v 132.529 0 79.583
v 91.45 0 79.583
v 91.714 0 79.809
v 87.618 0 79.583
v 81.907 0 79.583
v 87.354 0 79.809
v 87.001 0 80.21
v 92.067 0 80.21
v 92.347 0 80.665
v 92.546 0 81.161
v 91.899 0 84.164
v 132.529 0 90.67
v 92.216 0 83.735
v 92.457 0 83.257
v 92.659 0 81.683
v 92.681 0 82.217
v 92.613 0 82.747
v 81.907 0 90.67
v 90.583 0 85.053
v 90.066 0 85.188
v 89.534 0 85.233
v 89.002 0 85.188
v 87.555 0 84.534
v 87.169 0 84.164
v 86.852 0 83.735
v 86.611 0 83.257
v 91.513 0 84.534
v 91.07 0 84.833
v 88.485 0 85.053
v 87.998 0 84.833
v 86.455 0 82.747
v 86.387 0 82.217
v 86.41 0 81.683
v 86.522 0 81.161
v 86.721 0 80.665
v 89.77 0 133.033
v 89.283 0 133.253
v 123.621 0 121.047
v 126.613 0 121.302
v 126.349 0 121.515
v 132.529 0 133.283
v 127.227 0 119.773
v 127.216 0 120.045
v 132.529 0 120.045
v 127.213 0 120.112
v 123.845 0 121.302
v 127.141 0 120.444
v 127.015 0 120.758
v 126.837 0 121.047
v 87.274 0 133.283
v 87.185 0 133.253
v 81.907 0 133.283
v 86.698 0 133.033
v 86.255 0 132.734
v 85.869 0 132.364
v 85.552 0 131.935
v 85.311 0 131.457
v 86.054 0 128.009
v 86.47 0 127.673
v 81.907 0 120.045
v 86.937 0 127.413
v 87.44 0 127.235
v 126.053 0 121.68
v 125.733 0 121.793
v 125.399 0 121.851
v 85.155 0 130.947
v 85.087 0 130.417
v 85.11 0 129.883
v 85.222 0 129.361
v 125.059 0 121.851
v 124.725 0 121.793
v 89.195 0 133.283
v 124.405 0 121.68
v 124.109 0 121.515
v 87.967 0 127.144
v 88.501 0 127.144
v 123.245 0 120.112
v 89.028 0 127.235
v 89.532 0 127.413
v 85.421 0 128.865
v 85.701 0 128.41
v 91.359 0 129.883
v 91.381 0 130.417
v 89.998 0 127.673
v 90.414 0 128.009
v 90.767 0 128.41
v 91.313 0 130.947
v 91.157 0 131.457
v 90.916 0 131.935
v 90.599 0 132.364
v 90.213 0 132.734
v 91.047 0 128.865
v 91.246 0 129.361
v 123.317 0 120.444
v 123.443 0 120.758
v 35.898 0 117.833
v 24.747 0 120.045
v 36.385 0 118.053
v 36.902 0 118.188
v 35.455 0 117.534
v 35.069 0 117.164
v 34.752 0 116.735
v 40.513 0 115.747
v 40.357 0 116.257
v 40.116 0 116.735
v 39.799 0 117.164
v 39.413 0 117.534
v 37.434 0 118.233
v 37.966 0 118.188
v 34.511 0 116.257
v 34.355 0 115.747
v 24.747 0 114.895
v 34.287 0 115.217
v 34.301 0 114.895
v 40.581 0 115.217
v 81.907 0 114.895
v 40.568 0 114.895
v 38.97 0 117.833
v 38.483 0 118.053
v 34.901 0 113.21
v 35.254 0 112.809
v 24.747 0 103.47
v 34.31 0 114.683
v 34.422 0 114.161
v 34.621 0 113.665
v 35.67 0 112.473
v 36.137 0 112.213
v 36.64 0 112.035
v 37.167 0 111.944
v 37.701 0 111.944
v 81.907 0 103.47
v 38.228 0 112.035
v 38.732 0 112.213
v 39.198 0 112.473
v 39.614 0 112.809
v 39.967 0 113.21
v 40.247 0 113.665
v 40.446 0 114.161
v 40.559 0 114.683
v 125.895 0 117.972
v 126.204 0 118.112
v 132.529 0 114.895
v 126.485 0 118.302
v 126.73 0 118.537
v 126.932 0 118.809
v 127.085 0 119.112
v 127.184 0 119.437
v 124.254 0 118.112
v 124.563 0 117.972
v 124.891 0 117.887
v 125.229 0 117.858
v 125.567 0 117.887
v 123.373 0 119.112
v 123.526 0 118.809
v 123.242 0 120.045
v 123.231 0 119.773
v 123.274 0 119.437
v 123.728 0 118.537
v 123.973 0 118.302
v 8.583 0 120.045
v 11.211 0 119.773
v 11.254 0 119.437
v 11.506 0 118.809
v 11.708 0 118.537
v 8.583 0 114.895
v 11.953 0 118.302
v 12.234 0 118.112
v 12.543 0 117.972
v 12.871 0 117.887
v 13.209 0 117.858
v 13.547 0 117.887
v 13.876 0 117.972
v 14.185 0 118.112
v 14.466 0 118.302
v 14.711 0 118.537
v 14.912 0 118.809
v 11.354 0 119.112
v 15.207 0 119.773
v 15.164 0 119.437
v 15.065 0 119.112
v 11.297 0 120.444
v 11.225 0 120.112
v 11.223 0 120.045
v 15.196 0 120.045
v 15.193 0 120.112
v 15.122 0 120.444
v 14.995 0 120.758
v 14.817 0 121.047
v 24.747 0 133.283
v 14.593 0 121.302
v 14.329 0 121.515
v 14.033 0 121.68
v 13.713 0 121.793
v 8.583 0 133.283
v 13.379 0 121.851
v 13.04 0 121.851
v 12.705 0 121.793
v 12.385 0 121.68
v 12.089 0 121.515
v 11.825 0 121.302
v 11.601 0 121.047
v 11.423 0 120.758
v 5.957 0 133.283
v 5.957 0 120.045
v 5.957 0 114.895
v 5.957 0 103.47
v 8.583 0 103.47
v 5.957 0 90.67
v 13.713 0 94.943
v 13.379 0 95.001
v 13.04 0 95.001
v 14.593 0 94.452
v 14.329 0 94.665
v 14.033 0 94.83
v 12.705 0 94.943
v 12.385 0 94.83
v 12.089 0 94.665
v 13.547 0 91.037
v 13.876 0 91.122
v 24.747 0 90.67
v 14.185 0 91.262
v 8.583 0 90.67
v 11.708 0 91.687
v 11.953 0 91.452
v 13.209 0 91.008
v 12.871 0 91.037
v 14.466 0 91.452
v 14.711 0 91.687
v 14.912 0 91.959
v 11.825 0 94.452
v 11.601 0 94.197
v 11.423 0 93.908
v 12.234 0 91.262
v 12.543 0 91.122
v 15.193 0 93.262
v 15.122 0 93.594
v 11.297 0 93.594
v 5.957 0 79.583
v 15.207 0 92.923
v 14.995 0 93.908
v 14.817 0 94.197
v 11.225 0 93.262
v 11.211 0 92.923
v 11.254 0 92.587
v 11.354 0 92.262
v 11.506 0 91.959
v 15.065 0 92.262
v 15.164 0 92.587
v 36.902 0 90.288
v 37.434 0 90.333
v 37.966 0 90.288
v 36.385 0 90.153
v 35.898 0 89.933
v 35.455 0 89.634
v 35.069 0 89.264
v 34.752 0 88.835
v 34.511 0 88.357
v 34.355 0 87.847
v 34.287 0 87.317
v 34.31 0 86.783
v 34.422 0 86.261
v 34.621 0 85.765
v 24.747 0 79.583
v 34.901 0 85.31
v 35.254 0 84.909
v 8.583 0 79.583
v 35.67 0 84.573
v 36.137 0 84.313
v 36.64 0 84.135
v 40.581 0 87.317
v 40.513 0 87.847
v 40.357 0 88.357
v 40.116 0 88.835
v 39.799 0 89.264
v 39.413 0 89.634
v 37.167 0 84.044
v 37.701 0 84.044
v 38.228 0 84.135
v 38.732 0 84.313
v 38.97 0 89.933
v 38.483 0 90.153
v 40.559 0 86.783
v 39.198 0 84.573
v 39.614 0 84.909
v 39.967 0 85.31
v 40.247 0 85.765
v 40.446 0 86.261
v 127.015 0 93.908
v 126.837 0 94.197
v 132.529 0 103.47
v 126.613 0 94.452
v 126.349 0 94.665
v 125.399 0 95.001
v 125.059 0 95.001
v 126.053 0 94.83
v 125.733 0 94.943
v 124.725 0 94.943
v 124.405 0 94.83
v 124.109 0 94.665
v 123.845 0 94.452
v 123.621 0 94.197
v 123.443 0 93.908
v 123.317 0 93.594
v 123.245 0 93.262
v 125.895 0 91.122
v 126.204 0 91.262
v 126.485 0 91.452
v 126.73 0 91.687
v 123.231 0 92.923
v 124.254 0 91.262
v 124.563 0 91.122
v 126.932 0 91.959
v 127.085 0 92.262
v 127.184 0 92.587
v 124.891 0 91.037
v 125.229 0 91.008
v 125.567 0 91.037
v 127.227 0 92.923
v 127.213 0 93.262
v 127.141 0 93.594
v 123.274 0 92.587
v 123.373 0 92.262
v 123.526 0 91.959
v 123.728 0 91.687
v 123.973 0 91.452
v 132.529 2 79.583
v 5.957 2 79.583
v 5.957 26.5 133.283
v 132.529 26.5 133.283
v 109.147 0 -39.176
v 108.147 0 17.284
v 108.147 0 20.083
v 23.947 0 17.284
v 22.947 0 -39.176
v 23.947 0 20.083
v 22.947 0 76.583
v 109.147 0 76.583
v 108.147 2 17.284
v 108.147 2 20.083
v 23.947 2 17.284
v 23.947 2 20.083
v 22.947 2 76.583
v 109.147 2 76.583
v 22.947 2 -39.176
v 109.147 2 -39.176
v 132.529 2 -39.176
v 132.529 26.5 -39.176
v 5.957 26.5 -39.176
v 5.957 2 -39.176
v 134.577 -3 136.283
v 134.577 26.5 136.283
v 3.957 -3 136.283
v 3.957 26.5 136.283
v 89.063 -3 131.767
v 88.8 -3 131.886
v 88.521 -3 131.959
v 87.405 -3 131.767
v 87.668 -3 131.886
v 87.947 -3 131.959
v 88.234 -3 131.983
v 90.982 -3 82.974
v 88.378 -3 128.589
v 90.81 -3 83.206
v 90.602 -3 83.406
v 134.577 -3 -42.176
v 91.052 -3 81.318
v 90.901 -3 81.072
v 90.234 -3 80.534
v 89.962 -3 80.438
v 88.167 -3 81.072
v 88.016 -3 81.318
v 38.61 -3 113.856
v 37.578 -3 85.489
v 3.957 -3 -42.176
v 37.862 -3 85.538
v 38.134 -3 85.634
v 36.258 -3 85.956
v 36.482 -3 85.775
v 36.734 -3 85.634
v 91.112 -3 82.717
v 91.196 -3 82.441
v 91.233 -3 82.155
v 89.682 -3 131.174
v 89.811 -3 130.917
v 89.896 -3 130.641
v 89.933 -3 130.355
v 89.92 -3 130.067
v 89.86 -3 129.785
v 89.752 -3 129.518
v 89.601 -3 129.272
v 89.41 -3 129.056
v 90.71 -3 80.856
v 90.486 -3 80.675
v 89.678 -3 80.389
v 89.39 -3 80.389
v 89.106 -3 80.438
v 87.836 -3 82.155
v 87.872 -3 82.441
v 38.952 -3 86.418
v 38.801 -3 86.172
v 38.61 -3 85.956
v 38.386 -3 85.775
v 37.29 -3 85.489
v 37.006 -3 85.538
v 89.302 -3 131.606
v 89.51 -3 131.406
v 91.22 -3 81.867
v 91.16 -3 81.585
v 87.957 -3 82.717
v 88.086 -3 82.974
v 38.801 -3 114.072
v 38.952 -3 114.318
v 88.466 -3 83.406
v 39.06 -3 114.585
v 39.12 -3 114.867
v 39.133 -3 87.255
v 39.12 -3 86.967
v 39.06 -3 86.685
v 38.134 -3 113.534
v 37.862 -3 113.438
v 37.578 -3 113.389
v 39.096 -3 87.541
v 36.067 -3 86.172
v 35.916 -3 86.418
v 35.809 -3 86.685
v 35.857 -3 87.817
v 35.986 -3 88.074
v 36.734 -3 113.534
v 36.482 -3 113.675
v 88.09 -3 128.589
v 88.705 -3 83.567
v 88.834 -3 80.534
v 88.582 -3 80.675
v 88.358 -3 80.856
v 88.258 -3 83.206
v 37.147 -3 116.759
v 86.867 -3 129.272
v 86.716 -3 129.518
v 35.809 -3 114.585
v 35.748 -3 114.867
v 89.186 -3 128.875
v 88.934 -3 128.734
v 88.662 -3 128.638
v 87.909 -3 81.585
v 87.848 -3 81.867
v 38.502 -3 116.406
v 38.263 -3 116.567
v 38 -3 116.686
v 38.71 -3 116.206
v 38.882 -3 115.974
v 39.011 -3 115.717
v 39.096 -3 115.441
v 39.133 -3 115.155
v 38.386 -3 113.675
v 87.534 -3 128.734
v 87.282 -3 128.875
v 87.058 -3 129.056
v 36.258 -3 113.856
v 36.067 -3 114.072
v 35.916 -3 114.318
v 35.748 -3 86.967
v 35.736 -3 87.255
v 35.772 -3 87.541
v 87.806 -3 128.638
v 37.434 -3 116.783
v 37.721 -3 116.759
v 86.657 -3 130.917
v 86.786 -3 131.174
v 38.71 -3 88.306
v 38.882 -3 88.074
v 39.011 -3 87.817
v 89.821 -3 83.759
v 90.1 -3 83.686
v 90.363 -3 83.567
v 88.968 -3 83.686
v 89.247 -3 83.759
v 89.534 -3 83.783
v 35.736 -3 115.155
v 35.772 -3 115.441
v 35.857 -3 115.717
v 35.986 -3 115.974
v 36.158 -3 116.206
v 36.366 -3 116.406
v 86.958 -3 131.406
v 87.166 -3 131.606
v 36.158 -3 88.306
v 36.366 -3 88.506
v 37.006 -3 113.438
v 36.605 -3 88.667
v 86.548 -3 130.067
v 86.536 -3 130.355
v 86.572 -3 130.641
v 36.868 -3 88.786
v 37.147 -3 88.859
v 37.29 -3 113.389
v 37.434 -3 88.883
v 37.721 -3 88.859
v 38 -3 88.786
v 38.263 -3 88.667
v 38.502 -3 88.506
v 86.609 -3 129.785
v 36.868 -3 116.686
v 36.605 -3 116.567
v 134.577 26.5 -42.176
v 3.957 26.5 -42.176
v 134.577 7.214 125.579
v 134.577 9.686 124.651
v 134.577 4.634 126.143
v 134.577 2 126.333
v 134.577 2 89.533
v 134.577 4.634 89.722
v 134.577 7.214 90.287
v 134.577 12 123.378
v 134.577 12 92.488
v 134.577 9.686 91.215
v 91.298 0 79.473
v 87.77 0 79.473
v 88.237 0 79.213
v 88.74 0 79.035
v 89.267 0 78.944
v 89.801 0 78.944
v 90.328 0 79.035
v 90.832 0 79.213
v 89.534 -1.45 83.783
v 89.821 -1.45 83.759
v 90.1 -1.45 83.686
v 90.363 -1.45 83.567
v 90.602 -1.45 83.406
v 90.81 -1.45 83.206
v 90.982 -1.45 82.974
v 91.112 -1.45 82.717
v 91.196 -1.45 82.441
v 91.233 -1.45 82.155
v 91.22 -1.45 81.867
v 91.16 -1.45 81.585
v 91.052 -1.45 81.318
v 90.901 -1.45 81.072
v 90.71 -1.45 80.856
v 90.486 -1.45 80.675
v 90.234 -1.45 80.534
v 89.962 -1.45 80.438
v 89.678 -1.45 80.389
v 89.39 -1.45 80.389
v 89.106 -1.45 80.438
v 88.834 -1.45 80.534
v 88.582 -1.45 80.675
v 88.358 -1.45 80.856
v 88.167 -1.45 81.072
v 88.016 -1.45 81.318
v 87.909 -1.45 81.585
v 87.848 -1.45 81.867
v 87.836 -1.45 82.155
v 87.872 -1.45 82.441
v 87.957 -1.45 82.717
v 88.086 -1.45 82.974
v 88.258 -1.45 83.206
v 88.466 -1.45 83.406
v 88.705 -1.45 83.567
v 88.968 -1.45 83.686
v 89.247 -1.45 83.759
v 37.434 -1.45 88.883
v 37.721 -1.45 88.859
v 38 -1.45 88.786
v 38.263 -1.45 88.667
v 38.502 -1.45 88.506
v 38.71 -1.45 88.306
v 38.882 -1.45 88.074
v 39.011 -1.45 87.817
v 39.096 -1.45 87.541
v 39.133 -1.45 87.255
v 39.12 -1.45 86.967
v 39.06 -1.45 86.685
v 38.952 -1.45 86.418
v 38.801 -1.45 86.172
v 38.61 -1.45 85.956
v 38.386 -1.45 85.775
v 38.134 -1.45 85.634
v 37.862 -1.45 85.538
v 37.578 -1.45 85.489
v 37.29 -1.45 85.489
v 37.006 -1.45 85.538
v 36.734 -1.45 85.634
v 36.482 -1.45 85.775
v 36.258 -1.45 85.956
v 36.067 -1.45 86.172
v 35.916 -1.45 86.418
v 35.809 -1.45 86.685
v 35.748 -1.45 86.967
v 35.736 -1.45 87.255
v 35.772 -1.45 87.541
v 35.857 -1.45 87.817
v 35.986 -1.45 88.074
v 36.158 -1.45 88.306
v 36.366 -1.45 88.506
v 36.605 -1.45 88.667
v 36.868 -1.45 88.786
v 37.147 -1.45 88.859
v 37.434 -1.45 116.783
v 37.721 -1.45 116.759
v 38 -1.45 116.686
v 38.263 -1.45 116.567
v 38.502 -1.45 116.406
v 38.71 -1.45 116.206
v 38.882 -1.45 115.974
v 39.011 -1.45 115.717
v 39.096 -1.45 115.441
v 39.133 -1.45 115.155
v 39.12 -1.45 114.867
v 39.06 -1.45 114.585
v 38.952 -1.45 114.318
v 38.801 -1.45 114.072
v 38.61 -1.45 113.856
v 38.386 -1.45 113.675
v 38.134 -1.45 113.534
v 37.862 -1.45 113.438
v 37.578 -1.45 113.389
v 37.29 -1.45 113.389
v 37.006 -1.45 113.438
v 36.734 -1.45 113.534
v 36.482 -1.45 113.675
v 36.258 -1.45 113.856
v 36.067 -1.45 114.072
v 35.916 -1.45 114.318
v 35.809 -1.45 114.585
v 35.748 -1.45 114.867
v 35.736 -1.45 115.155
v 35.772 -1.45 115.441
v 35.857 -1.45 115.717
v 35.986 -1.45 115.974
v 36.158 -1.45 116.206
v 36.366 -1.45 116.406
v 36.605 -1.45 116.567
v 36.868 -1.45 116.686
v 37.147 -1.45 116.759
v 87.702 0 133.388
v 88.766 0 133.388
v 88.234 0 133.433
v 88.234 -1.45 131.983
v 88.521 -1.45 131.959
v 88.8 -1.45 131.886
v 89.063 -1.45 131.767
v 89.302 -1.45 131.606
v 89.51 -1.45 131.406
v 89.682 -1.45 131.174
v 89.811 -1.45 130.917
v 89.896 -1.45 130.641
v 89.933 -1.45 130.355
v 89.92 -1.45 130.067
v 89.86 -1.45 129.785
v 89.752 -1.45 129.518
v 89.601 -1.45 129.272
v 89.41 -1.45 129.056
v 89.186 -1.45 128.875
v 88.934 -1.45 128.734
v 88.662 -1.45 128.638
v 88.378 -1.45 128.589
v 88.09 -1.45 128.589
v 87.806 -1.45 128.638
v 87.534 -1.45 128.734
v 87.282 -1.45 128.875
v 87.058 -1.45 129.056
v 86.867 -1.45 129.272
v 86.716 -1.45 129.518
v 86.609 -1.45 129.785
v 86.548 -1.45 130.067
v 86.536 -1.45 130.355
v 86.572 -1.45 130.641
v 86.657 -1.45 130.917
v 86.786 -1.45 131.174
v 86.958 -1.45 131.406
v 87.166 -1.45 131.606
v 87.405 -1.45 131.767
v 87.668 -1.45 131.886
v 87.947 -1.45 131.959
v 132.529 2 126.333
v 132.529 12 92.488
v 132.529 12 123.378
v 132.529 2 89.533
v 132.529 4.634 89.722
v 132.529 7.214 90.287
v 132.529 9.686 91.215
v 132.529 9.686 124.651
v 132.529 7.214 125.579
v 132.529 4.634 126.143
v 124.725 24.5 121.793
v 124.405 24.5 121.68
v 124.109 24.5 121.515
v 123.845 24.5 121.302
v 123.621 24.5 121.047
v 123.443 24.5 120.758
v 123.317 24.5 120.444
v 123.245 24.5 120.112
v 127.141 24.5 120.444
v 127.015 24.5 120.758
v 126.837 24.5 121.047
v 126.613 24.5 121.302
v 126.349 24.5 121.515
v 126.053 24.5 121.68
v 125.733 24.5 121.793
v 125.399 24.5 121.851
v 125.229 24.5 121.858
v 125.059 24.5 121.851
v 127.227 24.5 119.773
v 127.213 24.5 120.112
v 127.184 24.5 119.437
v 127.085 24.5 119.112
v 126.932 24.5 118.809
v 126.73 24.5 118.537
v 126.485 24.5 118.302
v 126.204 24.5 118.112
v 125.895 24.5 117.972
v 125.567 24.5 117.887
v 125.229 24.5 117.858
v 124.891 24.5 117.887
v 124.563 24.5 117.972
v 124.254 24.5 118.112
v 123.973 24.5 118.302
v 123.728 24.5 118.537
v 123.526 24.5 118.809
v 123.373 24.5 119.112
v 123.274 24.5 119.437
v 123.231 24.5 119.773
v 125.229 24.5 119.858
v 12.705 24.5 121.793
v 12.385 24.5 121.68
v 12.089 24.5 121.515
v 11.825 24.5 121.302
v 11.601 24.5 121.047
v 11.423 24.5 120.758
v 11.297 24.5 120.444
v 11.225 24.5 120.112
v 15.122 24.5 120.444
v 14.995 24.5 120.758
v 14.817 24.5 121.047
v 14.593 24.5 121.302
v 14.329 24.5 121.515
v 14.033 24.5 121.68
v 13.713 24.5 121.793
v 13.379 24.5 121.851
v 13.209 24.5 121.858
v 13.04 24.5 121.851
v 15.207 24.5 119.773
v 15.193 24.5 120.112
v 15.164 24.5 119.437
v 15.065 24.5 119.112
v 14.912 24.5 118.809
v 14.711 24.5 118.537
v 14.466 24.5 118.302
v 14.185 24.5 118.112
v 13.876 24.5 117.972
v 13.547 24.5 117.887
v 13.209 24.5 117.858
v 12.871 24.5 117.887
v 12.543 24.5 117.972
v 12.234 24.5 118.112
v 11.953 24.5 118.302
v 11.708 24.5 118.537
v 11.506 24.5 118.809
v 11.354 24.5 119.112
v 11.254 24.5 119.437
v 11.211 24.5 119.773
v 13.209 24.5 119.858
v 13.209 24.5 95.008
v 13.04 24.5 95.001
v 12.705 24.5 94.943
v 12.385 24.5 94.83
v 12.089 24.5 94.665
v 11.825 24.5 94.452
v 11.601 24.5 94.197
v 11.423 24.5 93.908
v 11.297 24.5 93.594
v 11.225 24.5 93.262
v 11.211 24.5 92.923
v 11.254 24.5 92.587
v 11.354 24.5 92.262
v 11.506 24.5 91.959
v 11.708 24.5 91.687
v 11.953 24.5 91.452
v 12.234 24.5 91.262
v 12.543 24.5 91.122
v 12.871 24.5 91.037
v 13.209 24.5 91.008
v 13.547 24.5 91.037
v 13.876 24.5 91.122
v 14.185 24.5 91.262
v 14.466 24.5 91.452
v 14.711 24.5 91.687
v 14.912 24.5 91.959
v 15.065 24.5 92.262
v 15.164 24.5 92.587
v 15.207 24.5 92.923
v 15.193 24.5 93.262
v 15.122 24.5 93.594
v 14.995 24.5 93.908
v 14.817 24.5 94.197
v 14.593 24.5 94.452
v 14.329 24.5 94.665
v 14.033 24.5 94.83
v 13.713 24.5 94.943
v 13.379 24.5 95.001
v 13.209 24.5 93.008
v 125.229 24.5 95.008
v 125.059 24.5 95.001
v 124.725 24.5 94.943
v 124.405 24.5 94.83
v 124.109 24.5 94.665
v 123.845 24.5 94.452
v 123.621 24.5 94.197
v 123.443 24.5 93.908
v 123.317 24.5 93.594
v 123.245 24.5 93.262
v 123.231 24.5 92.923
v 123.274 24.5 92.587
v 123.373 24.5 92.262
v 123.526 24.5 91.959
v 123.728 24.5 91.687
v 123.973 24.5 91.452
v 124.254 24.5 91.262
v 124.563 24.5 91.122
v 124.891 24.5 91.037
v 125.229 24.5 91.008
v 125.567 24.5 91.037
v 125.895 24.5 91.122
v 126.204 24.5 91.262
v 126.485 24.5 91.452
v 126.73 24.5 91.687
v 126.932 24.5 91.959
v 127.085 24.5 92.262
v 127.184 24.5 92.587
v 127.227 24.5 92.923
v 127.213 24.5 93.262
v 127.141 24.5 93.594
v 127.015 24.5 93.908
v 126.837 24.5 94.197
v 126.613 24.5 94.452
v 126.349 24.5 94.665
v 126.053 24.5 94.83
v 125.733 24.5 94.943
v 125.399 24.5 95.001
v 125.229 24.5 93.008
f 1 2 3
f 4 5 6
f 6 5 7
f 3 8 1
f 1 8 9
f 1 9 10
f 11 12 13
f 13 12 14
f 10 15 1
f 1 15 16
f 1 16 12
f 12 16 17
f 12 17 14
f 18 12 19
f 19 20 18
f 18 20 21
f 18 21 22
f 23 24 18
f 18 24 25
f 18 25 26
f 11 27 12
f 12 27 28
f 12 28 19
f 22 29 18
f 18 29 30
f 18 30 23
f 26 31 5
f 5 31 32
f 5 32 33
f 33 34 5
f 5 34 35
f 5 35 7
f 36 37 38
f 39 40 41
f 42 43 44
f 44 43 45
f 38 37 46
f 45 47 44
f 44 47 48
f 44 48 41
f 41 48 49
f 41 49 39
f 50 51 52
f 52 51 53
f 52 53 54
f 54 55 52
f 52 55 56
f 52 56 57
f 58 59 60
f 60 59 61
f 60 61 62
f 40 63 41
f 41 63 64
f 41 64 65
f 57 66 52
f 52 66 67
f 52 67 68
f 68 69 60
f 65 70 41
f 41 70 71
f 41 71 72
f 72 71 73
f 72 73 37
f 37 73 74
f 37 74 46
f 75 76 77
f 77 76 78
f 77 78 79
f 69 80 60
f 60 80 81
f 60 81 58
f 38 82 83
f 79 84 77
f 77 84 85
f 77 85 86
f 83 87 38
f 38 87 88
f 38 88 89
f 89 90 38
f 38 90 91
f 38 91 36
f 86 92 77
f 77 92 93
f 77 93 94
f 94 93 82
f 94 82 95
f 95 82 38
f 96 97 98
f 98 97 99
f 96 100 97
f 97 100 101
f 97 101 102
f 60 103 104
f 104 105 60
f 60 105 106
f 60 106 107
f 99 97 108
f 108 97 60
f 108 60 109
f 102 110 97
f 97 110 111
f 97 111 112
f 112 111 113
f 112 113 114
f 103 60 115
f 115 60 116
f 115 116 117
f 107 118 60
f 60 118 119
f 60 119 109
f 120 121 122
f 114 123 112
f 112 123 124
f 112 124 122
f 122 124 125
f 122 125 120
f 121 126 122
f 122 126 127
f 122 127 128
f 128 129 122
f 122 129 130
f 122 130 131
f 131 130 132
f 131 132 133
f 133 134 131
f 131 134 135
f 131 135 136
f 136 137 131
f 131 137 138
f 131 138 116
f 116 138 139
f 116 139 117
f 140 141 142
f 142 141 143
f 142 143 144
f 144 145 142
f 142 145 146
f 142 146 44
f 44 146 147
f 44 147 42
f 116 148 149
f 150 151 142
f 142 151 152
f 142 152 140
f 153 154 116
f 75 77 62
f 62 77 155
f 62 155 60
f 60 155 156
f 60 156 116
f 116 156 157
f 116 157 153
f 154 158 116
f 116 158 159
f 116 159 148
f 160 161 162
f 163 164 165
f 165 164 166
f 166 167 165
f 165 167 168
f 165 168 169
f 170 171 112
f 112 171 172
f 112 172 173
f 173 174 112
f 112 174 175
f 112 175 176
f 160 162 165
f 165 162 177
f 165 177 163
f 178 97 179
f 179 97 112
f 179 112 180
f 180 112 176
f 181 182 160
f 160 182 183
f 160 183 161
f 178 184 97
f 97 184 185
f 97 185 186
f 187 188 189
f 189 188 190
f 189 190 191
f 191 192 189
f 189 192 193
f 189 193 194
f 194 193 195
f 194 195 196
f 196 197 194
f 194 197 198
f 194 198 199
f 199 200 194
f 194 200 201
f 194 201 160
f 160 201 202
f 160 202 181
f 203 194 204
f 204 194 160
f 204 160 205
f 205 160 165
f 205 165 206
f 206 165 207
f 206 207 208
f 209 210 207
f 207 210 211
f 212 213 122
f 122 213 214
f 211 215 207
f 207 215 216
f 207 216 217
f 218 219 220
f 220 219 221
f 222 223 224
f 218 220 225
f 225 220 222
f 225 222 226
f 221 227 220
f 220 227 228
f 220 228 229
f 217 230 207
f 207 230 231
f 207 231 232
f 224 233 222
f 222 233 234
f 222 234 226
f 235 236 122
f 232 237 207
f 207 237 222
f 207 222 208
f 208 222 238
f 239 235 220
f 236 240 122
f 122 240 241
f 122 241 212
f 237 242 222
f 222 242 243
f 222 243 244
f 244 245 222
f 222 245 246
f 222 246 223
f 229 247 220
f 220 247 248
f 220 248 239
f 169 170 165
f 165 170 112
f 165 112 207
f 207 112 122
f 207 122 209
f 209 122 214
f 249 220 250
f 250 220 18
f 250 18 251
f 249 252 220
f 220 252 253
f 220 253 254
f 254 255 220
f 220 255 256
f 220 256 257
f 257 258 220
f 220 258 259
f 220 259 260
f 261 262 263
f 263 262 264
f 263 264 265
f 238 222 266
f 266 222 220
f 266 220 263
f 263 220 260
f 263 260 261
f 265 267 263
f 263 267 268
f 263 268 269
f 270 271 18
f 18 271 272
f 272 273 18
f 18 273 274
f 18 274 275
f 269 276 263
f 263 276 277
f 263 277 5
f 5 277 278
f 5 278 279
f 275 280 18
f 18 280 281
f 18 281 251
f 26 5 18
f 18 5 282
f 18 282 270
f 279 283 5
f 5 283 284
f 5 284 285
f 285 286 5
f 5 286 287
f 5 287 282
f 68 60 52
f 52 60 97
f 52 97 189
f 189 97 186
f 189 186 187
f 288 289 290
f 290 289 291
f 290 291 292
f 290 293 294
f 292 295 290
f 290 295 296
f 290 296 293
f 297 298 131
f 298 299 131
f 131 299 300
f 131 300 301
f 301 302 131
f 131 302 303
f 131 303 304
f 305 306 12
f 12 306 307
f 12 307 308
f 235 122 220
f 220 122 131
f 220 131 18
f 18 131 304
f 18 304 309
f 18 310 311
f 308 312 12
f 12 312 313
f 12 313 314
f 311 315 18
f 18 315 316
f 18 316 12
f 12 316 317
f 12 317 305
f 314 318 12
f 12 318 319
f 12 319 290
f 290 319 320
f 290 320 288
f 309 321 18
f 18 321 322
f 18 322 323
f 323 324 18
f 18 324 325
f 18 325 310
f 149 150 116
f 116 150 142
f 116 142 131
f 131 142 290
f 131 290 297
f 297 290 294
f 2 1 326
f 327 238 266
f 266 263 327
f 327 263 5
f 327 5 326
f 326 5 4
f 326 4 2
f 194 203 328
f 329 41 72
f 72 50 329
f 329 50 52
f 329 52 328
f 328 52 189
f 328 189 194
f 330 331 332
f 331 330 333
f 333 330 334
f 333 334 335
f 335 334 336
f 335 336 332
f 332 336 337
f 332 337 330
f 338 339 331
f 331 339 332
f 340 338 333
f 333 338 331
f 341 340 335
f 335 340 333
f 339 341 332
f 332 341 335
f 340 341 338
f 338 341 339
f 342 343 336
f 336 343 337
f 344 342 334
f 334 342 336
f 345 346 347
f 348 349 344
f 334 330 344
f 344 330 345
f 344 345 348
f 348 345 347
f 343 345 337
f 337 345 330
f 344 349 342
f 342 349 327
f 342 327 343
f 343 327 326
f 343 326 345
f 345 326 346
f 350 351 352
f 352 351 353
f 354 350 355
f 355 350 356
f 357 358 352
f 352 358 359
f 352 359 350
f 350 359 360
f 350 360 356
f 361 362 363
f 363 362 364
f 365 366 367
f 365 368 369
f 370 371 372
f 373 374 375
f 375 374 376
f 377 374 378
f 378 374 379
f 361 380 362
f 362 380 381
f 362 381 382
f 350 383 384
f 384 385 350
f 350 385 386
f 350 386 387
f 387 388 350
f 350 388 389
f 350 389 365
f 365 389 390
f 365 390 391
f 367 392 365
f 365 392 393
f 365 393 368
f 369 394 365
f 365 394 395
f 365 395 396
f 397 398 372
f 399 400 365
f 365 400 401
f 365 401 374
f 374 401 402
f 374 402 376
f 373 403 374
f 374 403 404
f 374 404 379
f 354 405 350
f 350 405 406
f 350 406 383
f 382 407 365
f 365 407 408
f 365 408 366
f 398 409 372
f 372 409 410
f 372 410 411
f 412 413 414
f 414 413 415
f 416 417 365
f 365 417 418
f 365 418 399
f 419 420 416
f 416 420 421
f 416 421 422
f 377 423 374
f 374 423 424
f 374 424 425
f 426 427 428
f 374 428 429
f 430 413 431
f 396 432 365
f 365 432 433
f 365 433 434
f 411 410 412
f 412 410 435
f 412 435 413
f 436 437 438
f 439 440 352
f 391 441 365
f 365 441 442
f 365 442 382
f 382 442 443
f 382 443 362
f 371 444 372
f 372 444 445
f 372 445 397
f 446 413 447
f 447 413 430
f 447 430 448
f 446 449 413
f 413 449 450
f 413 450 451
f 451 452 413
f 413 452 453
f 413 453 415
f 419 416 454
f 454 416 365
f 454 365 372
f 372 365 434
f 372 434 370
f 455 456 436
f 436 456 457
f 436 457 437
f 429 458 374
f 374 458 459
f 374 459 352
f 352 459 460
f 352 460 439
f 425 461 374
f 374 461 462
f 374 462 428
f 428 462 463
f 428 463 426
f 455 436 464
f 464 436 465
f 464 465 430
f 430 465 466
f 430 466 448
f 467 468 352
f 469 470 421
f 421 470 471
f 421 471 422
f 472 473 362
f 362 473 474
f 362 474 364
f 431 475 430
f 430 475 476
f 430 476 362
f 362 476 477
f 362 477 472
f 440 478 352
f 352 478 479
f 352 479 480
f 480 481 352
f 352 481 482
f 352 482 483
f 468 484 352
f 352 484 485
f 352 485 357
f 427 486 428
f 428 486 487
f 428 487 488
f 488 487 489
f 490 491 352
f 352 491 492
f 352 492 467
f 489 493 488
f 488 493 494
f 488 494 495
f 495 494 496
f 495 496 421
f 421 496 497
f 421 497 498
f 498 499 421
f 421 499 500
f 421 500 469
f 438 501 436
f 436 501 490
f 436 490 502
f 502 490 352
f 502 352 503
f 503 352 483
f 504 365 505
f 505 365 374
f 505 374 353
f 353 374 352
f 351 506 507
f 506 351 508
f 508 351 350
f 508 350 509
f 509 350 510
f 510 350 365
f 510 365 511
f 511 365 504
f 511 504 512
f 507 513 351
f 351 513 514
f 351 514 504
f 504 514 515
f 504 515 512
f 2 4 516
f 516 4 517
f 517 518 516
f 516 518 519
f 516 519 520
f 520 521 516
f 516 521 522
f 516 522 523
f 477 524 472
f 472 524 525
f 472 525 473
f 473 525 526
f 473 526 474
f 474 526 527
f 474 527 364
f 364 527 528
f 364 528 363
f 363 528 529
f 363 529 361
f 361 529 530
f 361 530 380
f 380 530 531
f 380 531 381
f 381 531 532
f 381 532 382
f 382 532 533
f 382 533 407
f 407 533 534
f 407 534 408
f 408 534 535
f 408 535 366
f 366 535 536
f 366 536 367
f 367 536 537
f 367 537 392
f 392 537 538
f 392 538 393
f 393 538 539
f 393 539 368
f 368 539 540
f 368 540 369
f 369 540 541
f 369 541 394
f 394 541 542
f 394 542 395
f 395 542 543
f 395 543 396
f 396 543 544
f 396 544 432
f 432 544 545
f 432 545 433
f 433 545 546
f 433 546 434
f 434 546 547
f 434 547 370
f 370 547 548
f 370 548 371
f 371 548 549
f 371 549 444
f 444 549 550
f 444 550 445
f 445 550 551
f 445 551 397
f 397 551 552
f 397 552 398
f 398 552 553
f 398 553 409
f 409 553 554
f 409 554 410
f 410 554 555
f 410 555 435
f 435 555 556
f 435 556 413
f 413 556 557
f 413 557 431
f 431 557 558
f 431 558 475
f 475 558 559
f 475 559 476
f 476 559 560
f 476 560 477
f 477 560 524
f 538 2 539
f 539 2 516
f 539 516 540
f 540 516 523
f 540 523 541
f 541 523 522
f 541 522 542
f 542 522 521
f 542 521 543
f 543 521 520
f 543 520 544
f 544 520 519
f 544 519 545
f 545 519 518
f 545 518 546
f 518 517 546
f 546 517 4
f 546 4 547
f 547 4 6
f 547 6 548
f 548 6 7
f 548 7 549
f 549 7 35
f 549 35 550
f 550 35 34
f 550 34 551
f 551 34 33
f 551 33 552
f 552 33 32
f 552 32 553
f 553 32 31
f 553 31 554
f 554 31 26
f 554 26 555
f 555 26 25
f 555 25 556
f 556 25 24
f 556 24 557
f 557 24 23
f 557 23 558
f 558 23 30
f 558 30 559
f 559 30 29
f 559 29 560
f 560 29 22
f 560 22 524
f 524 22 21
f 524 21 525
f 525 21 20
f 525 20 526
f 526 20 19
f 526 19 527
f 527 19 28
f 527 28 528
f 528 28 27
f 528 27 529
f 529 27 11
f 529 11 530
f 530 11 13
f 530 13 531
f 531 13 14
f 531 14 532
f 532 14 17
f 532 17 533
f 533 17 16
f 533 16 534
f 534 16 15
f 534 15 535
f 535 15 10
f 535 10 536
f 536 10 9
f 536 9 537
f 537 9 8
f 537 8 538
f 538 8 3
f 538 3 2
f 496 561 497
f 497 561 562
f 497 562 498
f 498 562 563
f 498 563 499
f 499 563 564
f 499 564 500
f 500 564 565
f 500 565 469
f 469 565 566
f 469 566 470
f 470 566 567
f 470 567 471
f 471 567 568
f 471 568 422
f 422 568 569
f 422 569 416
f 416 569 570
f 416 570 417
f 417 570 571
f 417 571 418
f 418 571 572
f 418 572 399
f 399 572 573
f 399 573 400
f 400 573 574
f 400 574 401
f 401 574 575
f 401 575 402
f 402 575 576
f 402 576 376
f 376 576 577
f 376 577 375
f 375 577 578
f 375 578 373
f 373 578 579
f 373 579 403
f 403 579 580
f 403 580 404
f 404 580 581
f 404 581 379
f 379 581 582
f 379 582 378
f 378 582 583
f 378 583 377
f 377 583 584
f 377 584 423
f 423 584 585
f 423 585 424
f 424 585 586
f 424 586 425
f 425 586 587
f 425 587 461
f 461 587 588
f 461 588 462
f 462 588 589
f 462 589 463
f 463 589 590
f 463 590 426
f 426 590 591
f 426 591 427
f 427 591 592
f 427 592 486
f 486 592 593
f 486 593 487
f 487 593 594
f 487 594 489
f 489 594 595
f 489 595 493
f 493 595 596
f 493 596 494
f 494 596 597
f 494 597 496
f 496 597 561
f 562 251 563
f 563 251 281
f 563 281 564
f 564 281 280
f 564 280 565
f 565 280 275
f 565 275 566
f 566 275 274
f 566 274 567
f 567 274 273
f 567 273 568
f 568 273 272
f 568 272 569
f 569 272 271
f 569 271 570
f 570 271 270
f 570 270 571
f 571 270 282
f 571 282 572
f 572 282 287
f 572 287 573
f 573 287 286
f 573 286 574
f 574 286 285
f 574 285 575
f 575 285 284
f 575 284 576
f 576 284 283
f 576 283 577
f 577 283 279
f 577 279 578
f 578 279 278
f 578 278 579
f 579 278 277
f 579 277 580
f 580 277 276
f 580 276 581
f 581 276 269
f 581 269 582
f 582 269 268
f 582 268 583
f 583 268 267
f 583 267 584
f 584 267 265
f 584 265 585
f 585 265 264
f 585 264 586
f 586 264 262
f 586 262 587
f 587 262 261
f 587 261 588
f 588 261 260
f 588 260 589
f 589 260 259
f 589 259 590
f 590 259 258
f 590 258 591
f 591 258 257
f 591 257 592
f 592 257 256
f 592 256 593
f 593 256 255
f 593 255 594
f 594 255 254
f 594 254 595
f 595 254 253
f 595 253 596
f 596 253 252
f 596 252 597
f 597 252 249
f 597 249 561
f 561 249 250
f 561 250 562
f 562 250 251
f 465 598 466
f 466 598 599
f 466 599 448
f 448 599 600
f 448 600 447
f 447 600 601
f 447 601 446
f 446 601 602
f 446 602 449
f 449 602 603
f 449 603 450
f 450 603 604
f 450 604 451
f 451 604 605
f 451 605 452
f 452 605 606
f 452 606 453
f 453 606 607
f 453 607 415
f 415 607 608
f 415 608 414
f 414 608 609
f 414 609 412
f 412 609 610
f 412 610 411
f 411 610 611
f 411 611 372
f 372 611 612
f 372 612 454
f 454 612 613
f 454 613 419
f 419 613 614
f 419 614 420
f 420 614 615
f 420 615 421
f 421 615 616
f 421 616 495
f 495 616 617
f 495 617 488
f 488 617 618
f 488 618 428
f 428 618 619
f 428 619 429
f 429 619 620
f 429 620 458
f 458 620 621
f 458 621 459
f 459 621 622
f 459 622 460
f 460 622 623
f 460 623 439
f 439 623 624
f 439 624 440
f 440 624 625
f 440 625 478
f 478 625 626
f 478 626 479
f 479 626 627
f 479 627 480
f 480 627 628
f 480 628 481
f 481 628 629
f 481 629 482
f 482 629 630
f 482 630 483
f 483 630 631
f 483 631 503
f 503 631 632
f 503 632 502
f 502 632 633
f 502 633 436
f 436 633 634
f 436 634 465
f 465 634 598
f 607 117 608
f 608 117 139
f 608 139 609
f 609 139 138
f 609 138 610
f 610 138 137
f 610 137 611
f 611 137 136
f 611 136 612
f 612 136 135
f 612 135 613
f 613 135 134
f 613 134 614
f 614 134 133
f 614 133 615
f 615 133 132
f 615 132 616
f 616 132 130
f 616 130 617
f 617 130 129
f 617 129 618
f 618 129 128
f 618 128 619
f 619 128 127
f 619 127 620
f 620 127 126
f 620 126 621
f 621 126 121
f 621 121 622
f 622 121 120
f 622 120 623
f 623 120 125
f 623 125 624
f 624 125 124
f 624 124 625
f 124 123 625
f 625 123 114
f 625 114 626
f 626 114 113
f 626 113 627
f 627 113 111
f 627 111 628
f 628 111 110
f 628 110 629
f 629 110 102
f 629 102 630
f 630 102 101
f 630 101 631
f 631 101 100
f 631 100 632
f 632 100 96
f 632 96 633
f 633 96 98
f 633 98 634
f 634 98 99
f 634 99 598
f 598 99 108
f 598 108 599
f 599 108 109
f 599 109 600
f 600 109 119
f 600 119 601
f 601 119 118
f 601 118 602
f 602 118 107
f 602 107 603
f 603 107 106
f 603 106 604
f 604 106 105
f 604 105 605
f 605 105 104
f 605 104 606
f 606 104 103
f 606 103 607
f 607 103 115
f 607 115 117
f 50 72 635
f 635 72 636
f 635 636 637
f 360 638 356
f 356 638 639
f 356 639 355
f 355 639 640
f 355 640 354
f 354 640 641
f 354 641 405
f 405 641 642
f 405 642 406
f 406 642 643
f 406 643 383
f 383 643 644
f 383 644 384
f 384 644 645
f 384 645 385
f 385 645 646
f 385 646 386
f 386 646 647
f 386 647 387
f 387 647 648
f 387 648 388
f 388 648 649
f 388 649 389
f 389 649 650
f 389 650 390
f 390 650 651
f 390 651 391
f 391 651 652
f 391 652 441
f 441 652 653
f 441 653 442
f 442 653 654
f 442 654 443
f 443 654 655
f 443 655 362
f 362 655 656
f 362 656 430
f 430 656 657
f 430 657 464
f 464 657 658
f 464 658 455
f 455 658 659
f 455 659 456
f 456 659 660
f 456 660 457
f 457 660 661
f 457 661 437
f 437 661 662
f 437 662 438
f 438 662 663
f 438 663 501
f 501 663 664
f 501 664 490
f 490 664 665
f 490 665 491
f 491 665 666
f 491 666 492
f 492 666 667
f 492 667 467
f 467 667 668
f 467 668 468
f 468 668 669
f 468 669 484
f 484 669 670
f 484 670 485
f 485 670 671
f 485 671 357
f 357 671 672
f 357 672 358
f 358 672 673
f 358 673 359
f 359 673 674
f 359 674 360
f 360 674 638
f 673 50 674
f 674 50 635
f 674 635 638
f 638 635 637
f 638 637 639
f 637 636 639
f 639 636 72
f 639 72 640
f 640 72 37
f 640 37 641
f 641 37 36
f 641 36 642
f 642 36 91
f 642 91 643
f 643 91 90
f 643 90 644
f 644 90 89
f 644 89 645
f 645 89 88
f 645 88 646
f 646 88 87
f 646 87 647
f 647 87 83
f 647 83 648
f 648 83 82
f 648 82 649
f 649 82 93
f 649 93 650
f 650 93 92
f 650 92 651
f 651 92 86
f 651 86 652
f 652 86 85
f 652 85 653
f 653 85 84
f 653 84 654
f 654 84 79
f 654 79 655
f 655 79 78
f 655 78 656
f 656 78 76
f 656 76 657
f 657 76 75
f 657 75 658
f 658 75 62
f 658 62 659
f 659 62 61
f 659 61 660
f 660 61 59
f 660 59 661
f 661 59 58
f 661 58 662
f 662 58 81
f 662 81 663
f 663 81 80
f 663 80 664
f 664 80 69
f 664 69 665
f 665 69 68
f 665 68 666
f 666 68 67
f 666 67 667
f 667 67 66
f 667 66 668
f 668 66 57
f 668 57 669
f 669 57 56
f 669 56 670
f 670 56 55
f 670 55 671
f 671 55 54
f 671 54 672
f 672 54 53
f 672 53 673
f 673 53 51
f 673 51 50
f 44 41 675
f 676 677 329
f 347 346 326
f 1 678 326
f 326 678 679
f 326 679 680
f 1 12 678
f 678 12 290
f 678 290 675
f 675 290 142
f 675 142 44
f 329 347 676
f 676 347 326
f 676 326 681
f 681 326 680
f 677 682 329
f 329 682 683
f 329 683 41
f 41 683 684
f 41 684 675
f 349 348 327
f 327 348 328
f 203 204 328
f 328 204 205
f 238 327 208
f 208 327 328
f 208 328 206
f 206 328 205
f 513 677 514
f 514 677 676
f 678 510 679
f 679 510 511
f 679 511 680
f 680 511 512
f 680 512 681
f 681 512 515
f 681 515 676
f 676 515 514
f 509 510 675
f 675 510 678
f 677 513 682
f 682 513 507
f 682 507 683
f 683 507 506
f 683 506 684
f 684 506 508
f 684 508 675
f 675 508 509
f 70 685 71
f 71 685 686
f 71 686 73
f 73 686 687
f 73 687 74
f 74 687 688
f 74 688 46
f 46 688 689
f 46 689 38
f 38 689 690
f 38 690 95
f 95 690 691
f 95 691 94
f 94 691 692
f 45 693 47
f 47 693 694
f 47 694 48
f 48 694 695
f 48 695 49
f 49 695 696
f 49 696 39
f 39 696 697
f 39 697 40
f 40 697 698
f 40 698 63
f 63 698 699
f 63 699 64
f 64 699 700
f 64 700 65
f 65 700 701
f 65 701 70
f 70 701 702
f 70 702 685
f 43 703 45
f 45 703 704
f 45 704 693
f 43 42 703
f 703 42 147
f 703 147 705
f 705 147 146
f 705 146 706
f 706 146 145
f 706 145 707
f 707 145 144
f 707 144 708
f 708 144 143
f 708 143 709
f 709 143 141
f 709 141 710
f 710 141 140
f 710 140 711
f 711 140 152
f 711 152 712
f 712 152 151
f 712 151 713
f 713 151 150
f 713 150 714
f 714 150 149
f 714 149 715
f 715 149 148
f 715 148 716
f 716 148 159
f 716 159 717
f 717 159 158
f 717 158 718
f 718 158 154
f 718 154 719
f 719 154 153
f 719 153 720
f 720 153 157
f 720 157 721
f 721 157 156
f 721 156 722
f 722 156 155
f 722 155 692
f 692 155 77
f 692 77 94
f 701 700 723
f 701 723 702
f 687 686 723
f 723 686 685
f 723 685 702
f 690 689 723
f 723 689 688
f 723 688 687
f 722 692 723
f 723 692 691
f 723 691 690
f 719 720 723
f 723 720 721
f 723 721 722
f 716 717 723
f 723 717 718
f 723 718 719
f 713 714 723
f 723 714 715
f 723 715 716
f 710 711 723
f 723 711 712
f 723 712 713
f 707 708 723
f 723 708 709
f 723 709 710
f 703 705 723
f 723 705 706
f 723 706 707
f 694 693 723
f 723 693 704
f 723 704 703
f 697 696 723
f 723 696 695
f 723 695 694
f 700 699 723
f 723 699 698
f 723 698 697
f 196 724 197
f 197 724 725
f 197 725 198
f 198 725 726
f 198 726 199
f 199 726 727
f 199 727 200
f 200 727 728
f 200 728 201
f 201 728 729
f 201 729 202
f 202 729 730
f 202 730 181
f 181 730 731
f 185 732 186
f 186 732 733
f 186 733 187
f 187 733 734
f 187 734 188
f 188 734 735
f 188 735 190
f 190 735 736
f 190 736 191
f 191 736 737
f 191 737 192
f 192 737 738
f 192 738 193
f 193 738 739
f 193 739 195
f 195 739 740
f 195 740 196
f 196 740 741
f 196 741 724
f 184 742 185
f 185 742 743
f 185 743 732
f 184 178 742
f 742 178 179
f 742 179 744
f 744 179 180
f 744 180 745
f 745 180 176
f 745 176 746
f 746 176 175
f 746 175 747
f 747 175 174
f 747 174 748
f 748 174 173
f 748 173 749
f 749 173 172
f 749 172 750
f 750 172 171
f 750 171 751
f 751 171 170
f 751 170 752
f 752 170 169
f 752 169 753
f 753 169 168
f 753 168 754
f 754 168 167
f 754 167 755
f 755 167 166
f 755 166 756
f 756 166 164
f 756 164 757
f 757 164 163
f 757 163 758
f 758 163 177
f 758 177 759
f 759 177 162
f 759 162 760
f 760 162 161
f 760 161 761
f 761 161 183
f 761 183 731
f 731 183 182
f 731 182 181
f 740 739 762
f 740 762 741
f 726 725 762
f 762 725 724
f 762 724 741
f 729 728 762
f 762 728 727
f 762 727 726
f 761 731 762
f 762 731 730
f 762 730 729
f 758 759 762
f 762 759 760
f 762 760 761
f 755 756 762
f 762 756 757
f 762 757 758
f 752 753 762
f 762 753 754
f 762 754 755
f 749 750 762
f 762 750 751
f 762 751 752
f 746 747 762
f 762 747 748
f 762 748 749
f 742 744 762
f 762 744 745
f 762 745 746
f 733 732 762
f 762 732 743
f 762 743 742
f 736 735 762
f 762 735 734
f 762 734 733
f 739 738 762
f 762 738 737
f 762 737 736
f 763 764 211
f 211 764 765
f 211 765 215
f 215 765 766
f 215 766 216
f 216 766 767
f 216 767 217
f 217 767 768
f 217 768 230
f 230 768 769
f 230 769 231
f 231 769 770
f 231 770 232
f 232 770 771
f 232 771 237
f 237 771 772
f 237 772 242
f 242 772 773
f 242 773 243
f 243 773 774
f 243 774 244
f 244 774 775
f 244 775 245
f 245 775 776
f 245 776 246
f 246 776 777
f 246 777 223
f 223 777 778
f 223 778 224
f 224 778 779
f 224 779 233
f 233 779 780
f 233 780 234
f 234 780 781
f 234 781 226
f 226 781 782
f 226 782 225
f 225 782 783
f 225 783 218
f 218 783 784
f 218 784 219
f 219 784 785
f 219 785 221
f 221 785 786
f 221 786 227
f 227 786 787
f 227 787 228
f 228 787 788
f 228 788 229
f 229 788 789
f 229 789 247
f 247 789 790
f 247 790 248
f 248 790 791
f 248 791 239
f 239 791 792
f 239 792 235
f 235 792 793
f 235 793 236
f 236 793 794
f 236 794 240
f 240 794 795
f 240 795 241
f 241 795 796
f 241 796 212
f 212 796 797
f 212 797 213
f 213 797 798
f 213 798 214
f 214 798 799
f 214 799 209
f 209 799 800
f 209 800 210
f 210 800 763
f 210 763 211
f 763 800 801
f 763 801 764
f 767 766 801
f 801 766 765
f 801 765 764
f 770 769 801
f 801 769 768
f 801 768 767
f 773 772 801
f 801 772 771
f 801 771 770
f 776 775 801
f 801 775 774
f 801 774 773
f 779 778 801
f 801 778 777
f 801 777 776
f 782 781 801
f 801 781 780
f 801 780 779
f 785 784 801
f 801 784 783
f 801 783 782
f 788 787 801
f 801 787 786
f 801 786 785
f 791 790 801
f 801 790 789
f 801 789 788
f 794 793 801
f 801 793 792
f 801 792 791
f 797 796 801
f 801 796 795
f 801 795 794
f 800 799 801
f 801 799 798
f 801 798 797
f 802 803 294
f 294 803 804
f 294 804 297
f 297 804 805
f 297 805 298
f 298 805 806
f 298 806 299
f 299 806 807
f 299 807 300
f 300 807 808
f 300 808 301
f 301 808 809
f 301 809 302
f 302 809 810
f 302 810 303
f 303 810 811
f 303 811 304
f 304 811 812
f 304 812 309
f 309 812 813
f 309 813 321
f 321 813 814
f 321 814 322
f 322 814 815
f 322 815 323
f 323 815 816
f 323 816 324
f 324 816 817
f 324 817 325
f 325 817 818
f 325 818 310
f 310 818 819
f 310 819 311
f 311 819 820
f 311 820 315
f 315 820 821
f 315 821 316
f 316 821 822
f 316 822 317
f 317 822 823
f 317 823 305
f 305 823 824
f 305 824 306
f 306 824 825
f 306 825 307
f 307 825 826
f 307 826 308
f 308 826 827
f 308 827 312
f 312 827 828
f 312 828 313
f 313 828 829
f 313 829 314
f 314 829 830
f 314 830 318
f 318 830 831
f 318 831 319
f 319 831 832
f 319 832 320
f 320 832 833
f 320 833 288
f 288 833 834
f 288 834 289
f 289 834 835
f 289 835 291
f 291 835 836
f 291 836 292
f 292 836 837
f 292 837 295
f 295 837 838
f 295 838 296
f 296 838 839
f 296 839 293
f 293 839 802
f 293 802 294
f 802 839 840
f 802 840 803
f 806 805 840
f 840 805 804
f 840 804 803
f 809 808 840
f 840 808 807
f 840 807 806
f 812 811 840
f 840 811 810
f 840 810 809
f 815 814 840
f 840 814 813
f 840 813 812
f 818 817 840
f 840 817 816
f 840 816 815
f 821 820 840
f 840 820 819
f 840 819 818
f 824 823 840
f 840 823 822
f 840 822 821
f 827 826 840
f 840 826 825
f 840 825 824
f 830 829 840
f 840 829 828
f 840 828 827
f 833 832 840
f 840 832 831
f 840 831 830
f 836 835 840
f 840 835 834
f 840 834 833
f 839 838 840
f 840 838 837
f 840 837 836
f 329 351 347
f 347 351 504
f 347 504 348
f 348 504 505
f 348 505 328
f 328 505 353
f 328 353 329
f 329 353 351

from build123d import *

# Parameters (mm, degrees)
SKETCH1_W                                    = 130.62
SKETCH1_H                                    = 3
SKETCH1_W_2                                  = 18.99
SKETCH1_W_3                                  = 25.43
SKETCH1_W_4                                  = 84.2
SKETCH1_H_2                                  = 2.79860344
BOSS_EXTRUDE1_DEPTH                          = 2
SKETCH2_W                                    = 130.62
SKETCH2_H                                    = 178.45860344
BOSS_EXTRUDE2_DEPTH                          = 3
CSK_FOR_M3_COUNTERSUNK_FLAT_HEAD_SCR_2_COUNT = 2
CSK_FOR_M3_COUNTERSUNK_FLAT_HEAD_SCR_2_PITCH = 53.025276991
CSK_FOR_M3_COUNTERSUNK_FLAT_HEAD_SCR_3_COUNT = 2
CSK_FOR_M3_COUNTERSUNK_FLAT_HEAD_SCR_3_PITCH = 66.620192134
CSK_FOR_M3_COUNTERSUNK_FLAT_HEAD_SCR_4_COUNT = 2
CSK_FOR_M3_COUNTERSUNK_FLAT_HEAD_SCR_4_PITCH = 48.217527933
SKETCH9_W                                    = 2.047760895
SKETCH9_H                                    = 53.7
SKETCH9_W_2                                  = 2
BOSS_EXTRUDE3_DEPTH                          = 24
SKETCH10_W                                   = 130.62
SKETCH10_H                                   = 3
BOSS_EXTRUDE4_DEPTH                          = 22
CUT_EXTRUDE1_DEPTH                           = 22
BOSS_EXTRUDE5_DEPTH                          = 22
SKETCH13_R                                   = 2
BOSS_EXTRUDE6_DEPTH                          = 24.5
SKETCH15_W                                   = 126.572239105
SKETCH15_H                                   = 3
SKETCH15_W_2                                 = 2
SKETCH15_H_2                                 = 172.45860344
SKETCH15_W_3                                 = 2.047760895
BOSS_EXTRUDE7_DEPTH                          = 2.5


with BuildPart() as part:
    # Sketch1 → Boss-Extrude1 (new body)
    with BuildSketch(Plane(origin=(0, 0, 0), x_dir=(1, 0, 0), z_dir=(0, 1, 0))):
        with Locations((69.266788991, -134.782980897)):
            Rectangle(SKETCH1_W, SKETCH1_H)
        with Locations((69.266788991, -78.082980897)):
            Rectangle(SKETCH1_W, SKETCH1_H)
        Polygon((134.576788991, -20.082980897), (109.146788991, -20.082980897), (109.146788991, -67.500327372), (109.146788991, -76.582980897), (134.576788991, -76.582980897), align=None)
        Polygon((22.946788991, -33.891997438), (22.946788991, -20.082980897), (3.956788991, -20.082980897), (3.956788991, -76.582980897), (22.946788991, -76.582980897), align=None)
        Polygon((22.946788991, -17.082980897), (22.946788991, 39.175622543), (6.956788991, 39.175622543), (3.956788991, 39.175622543), (3.956788991, -17.082980897), align=None)
        Polygon((131.576788991, 39.175622543), (109.146788991, 39.175622543), (109.146788991, -17.082980897), (134.576788991, -17.082980897), (134.576788991, 39.175622543), align=None)
        with Locations((13.451788991, -18.582980897)):
            Rectangle(SKETCH1_W_2, SKETCH1_H)
        with Locations((121.861788991, -18.582980897)):
            Rectangle(SKETCH1_W_3, SKETCH1_H)
        with Locations((66.046788991, -18.683679177)):
            Rectangle(SKETCH1_W_4, SKETCH1_H_2)
        Polygon((23.946788991, 39.175622543), (108.146788991, 39.175622543), (109.146788991, 39.175622543), (131.576788991, 39.175622543), (134.576788991, 39.175622543), (134.576788991, 42.175622543), (3.956788991, 42.175622543), (3.956788991, 39.175622543), (6.956788991, 39.175622543), (22.946788991, 39.175622543), align=None)
    extrude(amount=BOSS_EXTRUDE1_DEPTH)

    # Sketch2 → Boss-Extrude2 (add)
    with BuildSketch(Plane.XZ):
        with Locations((69.266788991, 47.053679177)):
            Rectangle(SKETCH2_W, SKETCH2_H)
    extrude(amount=BOSS_EXTRUDE2_DEPTH)

    # Sketch8 → CSK for M3 Countersunk Flat Head Screw1 (revolve, cut)
    with BuildSketch(Plane(origin=(88.234088991, 0, 130.282980897), x_dir=(0, 0, 1), z_dir=(1, 0, 0))):
        Polygon((0, 0), (0, 3), (1.7, 3), (1.7, 1.45), (3.15, 0), align=None)
    csk_for_m3_countersunk_flat_head_screw1 = revolve(axis=Axis((88.234088991, 6.35, 130.282980897), (0, -1, 0)), mode=Mode.SUBTRACT)

    # CSK for M3 Countersunk Flat Head Scr 2: CSK for M3 Countersunk Flat Head Screw1 ×2
    with Locations(*[Vector(-0.958033656445997, 0, -0.2866557397239995) * (i * CSK_FOR_M3_COUNTERSUNK_FLAT_HEAD_SCR_2_PITCH) for i in range(1, CSK_FOR_M3_COUNTERSUNK_FLAT_HEAD_SCR_2_COUNT)]):
        add(csk_for_m3_countersunk_flat_head_screw1, mode=Mode.SUBTRACT)

    # CSK for M3 Countersunk Flat Head Scr 3: CSK for M3 Countersunk Flat Head Screw1 ×2
    with Locations(*[Vector(-0.762531574476027, 0, -0.6469510011794644) * (i * CSK_FOR_M3_COUNTERSUNK_FLAT_HEAD_SCR_3_PITCH) for i in range(1, CSK_FOR_M3_COUNTERSUNK_FLAT_HEAD_SCR_3_COUNT)]):
        add(csk_for_m3_countersunk_flat_head_screw1, mode=Mode.SUBTRACT)

    # CSK for M3 Countersunk Flat Head Scr 4: CSK for M3 Countersunk Flat Head Screw1 ×2
    with Locations(*[Vector(0.02696114993281913, 0, -0.9996364821245272) * (i * CSK_FOR_M3_COUNTERSUNK_FLAT_HEAD_SCR_4_PITCH) for i in range(1, CSK_FOR_M3_COUNTERSUNK_FLAT_HEAD_SCR_4_COUNT)]):
        add(csk_for_m3_countersunk_flat_head_screw1, mode=Mode.SUBTRACT)

    # Sketch9 → Boss-Extrude3 (add)
    with BuildSketch(Plane(origin=(0, 0, 0), x_dir=(1, 0, 0), z_dir=(0, 1, 0))):
        with Locations((133.552908543, -106.432980897)):
            Rectangle(SKETCH9_W, SKETCH9_H)
        with Locations((4.956788991, -106.432980897)):
            Rectangle(SKETCH9_W_2, SKETCH9_H)
    extrude(amount=BOSS_EXTRUDE3_DEPTH)

    # Sketch10 → Boss-Extrude4 (add)
    with BuildSketch(Plane(origin=(0, 2, 0), x_dir=(1, 0, 0), z_dir=(0, 1, 0))):
        with Locations((69.266788991, -134.782980897)):
            Rectangle(SKETCH10_W, SKETCH10_H)
    extrude(amount=BOSS_EXTRUDE4_DEPTH)

    # Sketch11 → Cut-Extrude1 (cut)
    with BuildSketch(Plane(origin=(134.576788991, 0, 0), x_dir=(0, 0, -1), z_dir=(1, 0, 0))):
        with BuildLine():
            Line((-126.332980897, 2), (-107.932980897, 2))
            Line((-107.932980897, 2), (-107.932980897, 12))
            Line((-107.932980897, 12), (-123.378368558, 12))
            ThreePointArc((-123.378368558, 12), (-125.578874654, 7.213677543), (-126.332980897, 2))
        make_face()
        with BuildLine():
            Line((-107.932980897, 2), (-89.532980897, 2))
            ThreePointArc((-89.532980897, 2), (-90.28708714, 7.213677543), (-92.487593236, 12))
            Line((-92.487593236, 12), (-107.932980897, 12))
            Line((-107.932980897, 12), (-107.932980897, 2))
        make_face()
    extrude(amount=-CUT_EXTRUDE1_DEPTH, mode=Mode.SUBTRACT)

    # Sketch12 → Boss-Extrude5 (add)
    with BuildSketch(Plane(origin=(0, 2, 0), x_dir=(1, 0, 0), z_dir=(0, 1, 0))):
        Polygon((134.576788991, 42.175622543), (3.956788991, 42.175622543), (3.956788991, -79.582980897), (5.956788991, -79.582980897), (5.956788991, 39.175622543), (132.529028096, 39.175622543), (132.529028096, -79.582980897), (134.576788991, -79.582980897), align=None)
    extrude(amount=BOSS_EXTRUDE5_DEPTH)

    # Sketch13 → Boss-Extrude6 (add)
    with BuildSketch(Plane(origin=(0, 0, 0), x_dir=(1, 0, 0), z_dir=(0, 1, 0))):
        with BuildLine():
            Line((125.229028096, -117.857980897), (125.229028096, -119.857980897))
            Line((125.229028096, -119.857980897), (125.229028096, -121.857980897))
            ThreePointArc((125.229028096, -121.857980897), (126.643241659, -121.272194459), (127.229028096, -119.857980897))
            ThreePointArc((127.229028096, -119.857980897), (126.643241659, -118.443767335), (125.229028096, -117.857980897))
        make_face()
        with BuildLine():
            ThreePointArc((125.229028096, -117.857980897), (123.814814534, -118.443767335), (123.229028096, -119.857980897))
            Line((123.229028096, -119.857980897), (125.229028096, -119.857980897))
            Line((125.229028096, -119.857980897), (125.229028096, -117.857980897))
        make_face()
        with BuildLine():
            Line((125.229028096, -119.857980897), (123.229028096, -119.857980897))
            ThreePointArc((123.229028096, -119.857980897), (123.814814534, -121.272194459), (125.229028096, -121.857980897))
            Line((125.229028096, -121.857980897), (125.229028096, -119.857980897))
        make_face()
        with BuildLine():
            ThreePointArc((125.229028096, -117.857980897), (123.814814534, -118.443767335), (123.229028096, -119.857980897))
            Line((123.229028096, -119.857980897), (125.229028096, -119.857980897))
            Line((125.229028096, -119.857980897), (125.229028096, -117.857980897))
        make_face()
        with BuildLine():
            ThreePointArc((13.209288991, -121.857980897), (14.623502553, -121.272194459), (15.209288991, -119.857980897))
            Line((15.209288991, -119.857980897), (13.209288991, -119.857980897))
            Line((13.209288991, -119.857980897), (13.209288991, -121.857980897))
        make_face()
        with BuildLine():
            Line((13.209288991, -119.857980897), (15.209288991, -119.857980897))
            ThreePointArc((15.209288991, -119.857980897), (14.623502553, -118.443767335), (13.209288991, -117.857980897))
            Line((13.209288991, -117.857980897), (13.209288991, -119.857980897))
        make_face()
        with BuildLine():
            Line((13.209288991, -119.857980897), (15.209288991, -119.857980897))
            ThreePointArc((15.209288991, -119.857980897), (14.623502553, -118.443767335), (13.209288991, -117.857980897))
            Line((13.209288991, -117.857980897), (13.209288991, -119.857980897))
        make_face()
        with BuildLine():
            Line((13.209288991, -119.857980897), (13.209288991, -117.857980897))
            ThreePointArc((13.209288991, -117.857980897), (11.209288991, -119.857980897), (13.209288991, -121.857980897))
            Line((13.209288991, -121.857980897), (13.209288991, -119.857980897))
        make_face()
        with BuildLine():
            ThreePointArc((15.209288991, -93.007980897), (14.623502553, -91.593767335), (13.209288991, -91.007980897))
            Line((13.209288991, -91.007980897), (13.209288991, -93.007980897))
            Line((13.209288991, -93.007980897), (15.209288991, -93.007980897))
        make_face()
        with BuildLine():
            ThreePointArc((13.209288991, -95.007980897), (14.623502553, -94.422194459), (15.209288991, -93.007980897))
            Line((15.209288991, -93.007980897), (13.209288991, -93.007980897))
            Line((13.209288991, -93.007980897), (13.209288991, -95.007980897))
        make_face()
        with BuildLine():
            ThreePointArc((15.209288991, -93.007980897), (14.623502553, -91.593767335), (13.209288991, -91.007980897))
            Line((13.209288991, -91.007980897), (13.209288991, -93.007980897))
            Line((13.209288991, -93.007980897), (15.209288991, -93.007980897))
        make_face()
        with BuildLine():
            ThreePointArc((13.209288991, -95.007980897), (14.623502553, -94.422194459), (15.209288991, -93.007980897))
            Line((15.209288991, -93.007980897), (13.209288991, -93.007980897))
            Line((13.209288991, -93.007980897), (13.209288991, -95.007980897))
        make_face()
        with BuildLine():
            Line((13.209288991, -93.007980897), (13.209288991, -91.007980897))
            ThreePointArc((13.209288991, -91.007980897), (11.209288991, -93.007980897), (13.209288991, -95.007980897))
            Line((13.209288991, -95.007980897), (13.209288991, -93.007980897))
        make_face()
        with Locations(Location((125.229028096, -93.007980897, 0), (0, 0, 90))):
            Circle(SKETCH13_R)
    extrude(amount=BOSS_EXTRUDE6_DEPTH)

    # Sketch15 → Boss-Extrude7 (add)
    with BuildSketch(Plane(origin=(0, 24, 0), x_dir=(1, 0, 0), z_dir=(0, 1, 0))):
        with Locations((69.242908544, 40.675622543)):
            Rectangle(SKETCH15_W, SKETCH15_H)
        with Locations((4.956788991, -47.053679177)):
            Rectangle(SKETCH15_W_2, SKETCH15_H_2)
        with Locations((4.956788991, 40.675622543)):
            Rectangle(SKETCH15_W_2, SKETCH15_H)
        with Locations((133.552908543, 40.675622543)):
            Rectangle(SKETCH15_W_3, SKETCH15_H)
        Polygon((134.576788991, -136.282980897), (134.576788991, 39.175622543), (132.529028096, 39.175622543), (132.529028096, -133.282980897), (132.529028096, -136.282980897), align=None)
        with Locations((4.956788991, -134.782980897)):
            Rectangle(SKETCH15_W_2, SKETCH15_H)
        with Locations((69.242908544, -134.782980897)):
            Rectangle(SKETCH15_W, SKETCH15_H)
    extrude(amount=BOSS_EXTRUDE7_DEPTH)


solid = part.part
